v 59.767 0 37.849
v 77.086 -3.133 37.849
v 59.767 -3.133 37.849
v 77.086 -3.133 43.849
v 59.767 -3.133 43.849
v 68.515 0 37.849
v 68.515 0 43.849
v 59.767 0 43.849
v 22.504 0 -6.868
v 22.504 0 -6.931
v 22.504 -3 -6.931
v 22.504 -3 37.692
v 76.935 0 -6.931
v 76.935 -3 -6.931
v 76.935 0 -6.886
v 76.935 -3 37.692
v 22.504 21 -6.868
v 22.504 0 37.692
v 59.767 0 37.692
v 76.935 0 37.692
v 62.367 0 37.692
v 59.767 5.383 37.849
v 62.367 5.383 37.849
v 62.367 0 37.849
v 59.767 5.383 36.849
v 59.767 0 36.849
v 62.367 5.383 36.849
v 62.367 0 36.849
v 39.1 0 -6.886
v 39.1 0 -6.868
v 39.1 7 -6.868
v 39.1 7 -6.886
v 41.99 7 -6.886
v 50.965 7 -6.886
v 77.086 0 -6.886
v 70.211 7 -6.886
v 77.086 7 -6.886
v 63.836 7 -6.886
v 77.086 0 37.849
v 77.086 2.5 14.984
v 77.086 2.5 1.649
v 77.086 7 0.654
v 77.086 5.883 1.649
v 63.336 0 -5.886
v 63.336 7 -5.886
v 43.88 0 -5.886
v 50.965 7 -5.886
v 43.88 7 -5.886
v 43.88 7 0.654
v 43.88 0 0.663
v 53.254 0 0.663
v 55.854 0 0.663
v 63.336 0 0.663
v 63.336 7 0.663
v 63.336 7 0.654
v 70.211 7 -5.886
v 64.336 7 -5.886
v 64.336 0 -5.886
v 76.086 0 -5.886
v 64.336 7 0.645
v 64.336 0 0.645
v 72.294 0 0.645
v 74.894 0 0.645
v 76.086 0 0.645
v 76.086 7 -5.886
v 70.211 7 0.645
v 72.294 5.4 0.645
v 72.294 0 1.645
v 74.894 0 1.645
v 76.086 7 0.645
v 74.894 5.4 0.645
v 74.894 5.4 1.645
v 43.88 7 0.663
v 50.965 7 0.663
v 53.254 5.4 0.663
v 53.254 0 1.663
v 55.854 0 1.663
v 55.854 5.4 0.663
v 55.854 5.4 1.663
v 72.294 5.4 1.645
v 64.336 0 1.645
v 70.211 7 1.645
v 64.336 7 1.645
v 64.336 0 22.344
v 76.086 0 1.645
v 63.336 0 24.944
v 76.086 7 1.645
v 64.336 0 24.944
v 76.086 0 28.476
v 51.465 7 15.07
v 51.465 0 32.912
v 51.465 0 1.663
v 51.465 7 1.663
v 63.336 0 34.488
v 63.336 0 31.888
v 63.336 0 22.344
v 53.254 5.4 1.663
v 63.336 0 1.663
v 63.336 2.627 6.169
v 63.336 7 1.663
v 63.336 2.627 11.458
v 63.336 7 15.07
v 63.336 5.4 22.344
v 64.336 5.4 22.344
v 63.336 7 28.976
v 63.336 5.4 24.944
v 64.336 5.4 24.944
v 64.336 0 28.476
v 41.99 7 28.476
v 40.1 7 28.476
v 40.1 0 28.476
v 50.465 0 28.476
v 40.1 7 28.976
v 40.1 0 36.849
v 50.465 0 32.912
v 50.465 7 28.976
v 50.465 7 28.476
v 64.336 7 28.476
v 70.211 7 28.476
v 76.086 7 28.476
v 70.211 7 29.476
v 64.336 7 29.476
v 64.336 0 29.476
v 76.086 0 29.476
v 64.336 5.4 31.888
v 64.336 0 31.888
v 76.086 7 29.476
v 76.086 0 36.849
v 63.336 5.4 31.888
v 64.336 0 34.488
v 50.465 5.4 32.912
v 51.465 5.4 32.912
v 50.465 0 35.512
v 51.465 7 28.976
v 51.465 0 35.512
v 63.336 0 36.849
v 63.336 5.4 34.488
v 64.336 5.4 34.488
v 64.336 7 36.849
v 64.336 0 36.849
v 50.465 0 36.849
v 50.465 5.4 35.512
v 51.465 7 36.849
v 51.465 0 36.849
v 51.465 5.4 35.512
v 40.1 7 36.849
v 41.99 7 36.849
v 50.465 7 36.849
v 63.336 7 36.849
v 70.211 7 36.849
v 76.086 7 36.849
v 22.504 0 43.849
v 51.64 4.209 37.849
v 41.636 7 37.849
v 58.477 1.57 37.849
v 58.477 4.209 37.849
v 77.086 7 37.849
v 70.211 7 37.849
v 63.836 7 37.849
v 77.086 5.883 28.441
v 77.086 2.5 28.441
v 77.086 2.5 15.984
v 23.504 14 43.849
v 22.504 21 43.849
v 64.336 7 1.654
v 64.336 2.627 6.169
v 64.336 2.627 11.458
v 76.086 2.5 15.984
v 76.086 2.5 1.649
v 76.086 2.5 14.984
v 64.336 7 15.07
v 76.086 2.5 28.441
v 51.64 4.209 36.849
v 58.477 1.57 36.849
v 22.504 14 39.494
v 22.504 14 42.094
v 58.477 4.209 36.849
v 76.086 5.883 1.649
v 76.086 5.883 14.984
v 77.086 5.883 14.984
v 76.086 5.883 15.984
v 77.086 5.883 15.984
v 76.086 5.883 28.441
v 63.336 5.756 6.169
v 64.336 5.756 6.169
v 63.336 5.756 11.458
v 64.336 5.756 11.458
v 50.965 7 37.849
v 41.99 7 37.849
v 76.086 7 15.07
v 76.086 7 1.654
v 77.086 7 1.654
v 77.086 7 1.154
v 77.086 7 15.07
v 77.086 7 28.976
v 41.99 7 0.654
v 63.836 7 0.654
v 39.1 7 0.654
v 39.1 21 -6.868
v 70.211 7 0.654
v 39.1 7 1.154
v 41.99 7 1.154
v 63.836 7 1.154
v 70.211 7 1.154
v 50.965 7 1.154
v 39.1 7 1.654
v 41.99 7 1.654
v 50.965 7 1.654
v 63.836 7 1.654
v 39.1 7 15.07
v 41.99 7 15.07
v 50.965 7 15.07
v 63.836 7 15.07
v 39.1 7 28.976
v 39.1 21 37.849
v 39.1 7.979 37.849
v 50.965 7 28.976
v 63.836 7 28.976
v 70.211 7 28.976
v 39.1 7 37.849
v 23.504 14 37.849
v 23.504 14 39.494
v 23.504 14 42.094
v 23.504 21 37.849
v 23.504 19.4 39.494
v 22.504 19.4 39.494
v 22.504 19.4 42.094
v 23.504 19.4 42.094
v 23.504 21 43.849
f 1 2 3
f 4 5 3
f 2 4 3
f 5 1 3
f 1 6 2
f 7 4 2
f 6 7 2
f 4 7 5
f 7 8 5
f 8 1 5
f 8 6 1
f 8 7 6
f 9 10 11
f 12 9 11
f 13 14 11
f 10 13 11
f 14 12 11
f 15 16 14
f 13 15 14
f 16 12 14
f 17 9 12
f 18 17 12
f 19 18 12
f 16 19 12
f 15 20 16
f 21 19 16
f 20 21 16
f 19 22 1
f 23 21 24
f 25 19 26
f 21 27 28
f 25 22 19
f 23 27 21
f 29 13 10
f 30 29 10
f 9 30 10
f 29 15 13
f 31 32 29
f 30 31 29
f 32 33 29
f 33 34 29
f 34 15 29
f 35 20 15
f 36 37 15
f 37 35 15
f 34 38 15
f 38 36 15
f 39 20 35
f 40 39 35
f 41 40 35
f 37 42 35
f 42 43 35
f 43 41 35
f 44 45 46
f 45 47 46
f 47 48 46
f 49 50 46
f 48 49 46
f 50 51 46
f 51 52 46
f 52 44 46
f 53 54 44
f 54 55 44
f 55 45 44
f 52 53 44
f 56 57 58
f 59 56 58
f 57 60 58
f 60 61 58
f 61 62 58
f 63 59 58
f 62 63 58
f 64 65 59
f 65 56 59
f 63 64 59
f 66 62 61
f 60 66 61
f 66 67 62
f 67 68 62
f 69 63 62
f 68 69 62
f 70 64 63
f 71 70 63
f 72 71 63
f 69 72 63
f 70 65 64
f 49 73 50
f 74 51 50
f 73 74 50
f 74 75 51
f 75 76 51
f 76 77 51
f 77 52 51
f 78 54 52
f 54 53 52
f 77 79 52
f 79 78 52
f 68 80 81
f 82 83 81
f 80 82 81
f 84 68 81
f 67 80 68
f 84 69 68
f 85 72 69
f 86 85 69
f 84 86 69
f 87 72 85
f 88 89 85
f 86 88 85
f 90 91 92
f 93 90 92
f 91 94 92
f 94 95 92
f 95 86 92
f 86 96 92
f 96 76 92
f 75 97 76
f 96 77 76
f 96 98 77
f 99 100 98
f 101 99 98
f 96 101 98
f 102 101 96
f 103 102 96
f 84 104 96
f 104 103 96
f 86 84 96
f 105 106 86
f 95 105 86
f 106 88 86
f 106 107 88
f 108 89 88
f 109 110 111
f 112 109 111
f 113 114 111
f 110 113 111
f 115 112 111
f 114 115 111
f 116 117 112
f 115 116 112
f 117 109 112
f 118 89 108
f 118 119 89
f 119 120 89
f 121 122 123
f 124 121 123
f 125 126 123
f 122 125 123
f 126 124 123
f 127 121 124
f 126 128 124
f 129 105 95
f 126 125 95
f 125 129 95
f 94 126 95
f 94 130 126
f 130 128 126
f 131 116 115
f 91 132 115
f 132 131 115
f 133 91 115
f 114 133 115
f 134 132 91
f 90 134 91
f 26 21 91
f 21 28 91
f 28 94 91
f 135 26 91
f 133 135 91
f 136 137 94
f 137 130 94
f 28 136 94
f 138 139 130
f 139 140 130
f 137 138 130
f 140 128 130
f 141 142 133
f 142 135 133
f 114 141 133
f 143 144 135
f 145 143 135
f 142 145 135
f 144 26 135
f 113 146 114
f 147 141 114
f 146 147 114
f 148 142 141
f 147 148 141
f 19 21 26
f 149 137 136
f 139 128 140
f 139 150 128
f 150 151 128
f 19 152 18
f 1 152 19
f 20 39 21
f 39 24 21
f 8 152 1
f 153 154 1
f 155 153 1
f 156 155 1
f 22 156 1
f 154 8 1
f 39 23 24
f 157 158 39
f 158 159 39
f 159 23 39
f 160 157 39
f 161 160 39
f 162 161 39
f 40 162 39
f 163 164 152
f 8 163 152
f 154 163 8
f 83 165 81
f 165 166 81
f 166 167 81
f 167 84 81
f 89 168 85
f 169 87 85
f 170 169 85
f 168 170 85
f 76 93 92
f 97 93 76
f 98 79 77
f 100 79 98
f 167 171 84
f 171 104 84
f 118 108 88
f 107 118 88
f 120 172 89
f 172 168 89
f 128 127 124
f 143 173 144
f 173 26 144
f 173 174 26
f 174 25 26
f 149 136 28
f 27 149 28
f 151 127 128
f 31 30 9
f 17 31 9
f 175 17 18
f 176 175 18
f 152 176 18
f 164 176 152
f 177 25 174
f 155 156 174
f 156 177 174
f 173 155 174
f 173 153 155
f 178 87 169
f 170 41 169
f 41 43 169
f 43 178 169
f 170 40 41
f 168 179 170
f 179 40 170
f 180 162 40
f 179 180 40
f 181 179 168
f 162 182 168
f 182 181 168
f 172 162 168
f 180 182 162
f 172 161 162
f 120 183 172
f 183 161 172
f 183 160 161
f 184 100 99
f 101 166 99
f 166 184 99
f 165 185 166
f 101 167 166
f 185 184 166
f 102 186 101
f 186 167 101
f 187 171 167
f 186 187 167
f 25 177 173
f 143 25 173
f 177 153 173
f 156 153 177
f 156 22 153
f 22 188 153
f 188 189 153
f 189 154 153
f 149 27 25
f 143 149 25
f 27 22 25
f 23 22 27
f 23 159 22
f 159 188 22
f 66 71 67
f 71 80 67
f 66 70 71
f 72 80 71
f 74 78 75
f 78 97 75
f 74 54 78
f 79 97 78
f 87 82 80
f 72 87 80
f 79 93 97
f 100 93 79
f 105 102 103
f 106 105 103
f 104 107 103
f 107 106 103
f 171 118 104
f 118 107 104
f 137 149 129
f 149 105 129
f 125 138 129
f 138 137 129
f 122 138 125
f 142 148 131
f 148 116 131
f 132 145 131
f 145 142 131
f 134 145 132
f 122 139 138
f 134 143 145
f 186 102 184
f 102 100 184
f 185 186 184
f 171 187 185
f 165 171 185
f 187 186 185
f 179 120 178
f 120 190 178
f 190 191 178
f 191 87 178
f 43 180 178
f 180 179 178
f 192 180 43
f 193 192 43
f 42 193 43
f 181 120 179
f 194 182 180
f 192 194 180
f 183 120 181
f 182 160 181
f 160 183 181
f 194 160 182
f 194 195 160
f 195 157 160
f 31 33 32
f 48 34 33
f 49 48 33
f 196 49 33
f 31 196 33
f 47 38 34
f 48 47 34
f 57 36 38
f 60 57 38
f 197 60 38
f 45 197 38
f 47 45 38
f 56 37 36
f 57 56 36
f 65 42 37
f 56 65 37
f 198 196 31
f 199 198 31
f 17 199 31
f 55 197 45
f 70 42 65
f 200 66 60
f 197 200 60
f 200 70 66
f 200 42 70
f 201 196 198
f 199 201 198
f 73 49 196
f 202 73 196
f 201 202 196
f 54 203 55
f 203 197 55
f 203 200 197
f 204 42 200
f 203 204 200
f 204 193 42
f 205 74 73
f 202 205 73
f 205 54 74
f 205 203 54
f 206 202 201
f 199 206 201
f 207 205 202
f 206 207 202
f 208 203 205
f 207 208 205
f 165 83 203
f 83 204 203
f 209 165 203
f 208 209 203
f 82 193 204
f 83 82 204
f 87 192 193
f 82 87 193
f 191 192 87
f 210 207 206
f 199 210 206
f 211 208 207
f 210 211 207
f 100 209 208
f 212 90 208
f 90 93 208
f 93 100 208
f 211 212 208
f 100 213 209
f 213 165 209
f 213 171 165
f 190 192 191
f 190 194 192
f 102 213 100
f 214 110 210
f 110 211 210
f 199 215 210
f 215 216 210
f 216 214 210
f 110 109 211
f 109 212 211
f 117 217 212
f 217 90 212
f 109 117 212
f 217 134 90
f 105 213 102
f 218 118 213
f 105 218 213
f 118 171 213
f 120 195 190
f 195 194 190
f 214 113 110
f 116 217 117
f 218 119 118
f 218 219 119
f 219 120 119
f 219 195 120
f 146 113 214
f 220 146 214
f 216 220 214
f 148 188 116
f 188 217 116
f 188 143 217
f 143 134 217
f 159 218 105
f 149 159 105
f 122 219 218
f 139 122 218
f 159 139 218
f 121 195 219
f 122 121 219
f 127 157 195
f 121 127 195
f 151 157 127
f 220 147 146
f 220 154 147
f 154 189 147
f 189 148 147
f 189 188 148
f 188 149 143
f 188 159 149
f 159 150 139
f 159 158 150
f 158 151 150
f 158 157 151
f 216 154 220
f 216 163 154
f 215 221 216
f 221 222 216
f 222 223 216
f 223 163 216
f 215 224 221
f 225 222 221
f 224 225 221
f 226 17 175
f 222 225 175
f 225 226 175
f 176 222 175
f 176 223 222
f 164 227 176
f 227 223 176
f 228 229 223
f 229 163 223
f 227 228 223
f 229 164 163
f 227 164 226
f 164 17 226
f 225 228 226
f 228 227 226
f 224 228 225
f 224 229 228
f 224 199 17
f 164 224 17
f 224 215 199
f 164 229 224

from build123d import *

# Parameters (mm, degrees)
ESBO_O2_W                 = 37.986253967
ESBO_O2_H                 = 44.734832406
ESBO_O2_W_2               = 11.750117276
ESBO_O2_H_2               = 7.37288194
ESBO_O2_W_3               = 11.871724424
ESBO_O2_H_3               = 35.18648103
ESBO_O2_H_4               = 26.831400584
ESBO_O2_H_5               = 6.530549882
ESBO_O2_W_4               = 19.456037254
ESBO_O2_H_6               = 6.548351376
ESBO_O2_W_5               = 10.364412267
ESBO_O2_H_7               = 8.37288194
RESSALTO_EXTRUS_O3_DEPTH  = 7
ESBO_O3_W                 = 2.6
ESBO_O3_H                 = 5.4
CORTE_EXTRUS_O1_DEPTH     = 7
ESBO_O4_W                 = 2.6
ESBO_O4_H                 = 5.4
CORTE_EXTRUS_O2_DEPTH     = 7
ESBO_O5_W                 = 2.6
ESBO_O5_H                 = 5.4
CORTE_EXTRUS_O3_DEPTH     = 7
ESBO_O6_W                 = 2.6
ESBO_O6_H                 = 5.4
CORTE_EXTRUS_O4_DEPTH     = 7
ESBO_O7_W                 = 12.456756284
ESBO_O7_H                 = 3.38294224
ESBO_O7_W_2               = 13.334930508
CORTE_EXTRUS_O5_DEPTH     = 7
ESBO_O8_W                 = 5.289229733
ESBO_O8_H                 = 3.129282188
CORTE_EXTRUS_O6_DEPTH     = 7
ESBO_O9_W                 = 16.596543628
ESBO_O9_H                 = 44.717687617
RESSALTO_EXTRUS_O4_DEPTH  = 21
ESBO_O10_W                = 1
ESBO_O10_H                = 7
RESSALTO_EXTRUS_O5_DEPTH  = 6
ESBO_O12_W                = 2.6
ESBO_O12_H                = 5.4
CORTE_EXTRUS_O7_DEPTH     = 6
RESSALTO_EXTRUS_O10_DEPTH = 6
ESBO_O14_W                = 54.431813347
ESBO_O14_H                = 44.622738474
RESSALTO_EXTRUS_O21_DEPTH = 3
CORTE_EXTRUS_O8_DEPTH     = 10


with BuildPart() as part:
    # Esboço2 → Ressalto-extrusão3 (new body)
    with BuildSketch(Plane(origin=(0, 0, 0), x_dir=(1, 0, 0), z_dir=(0, 1, 0))):
        with Locations((58.093256618, -15.481778526)):
            Rectangle(ESBO_O2_W, ESBO_O2_H)
        with Locations((70.211324964, -33.162753759)):
            Rectangle(ESBO_O2_W_2, ESBO_O2_H_2, mode=Mode.SUBTRACT)
        with Locations((57.400404114, -19.255954214)):
            Rectangle(ESBO_O2_W_3, ESBO_O2_H_3, mode=Mode.SUBTRACT)
        with Locations((70.211324964, -15.060612497)):
            Rectangle(ESBO_O2_W_2, ESBO_O2_H_4, mode=Mode.SUBTRACT)
        with Locations((70.211324964, 2.620362736)):
            Rectangle(ESBO_O2_W_2, ESBO_O2_H_5, mode=Mode.SUBTRACT)
        with Locations((53.608247699, 2.611461989)):
            Rectangle(ESBO_O2_W_4, ESBO_O2_H_6, mode=Mode.SUBTRACT)
        with Locations((45.282335769, -32.662753759)):
            Rectangle(ESBO_O2_W_5, ESBO_O2_H_7, mode=Mode.SUBTRACT)
    extrude(amount=RESSALTO_EXTRUS_O3_DEPTH)

    # Esboço3 → Corte-extrusão1 (cut)
    with BuildSketch(Plane.XY.offset(37.849194729)):
        with Locations((61.067460433, 2.683034247)):
            Rectangle(ESBO_O3_W, ESBO_O3_H)
    extrude(amount=-CORTE_EXTRUS_O1_DEPTH, mode=Mode.SUBTRACT)

    # Esboço4 → Corte-extrusão2 (cut)
    with BuildSketch(Plane(origin=(51.464541902, 0, 0), x_dir=(0, 0, -1), z_dir=(1, 0, 0))):
        with Locations((-34.211906201, 2.7)):
            Rectangle(ESBO_O4_W, ESBO_O4_H)
    extrude(amount=-CORTE_EXTRUS_O2_DEPTH, mode=Mode.SUBTRACT)

    # Esboço5 → Corte-extrusão3 (cut)
    with BuildSketch(Plane(origin=(64.336266326, 0, 0), x_dir=(0, 0, -1), z_dir=(1, 0, 0))):
        with Locations((-23.64357665, 2.7)):
            Rectangle(ESBO_O5_W, ESBO_O5_H)
        with Locations((-33.18821391, 2.7)):
            Rectangle(ESBO_O5_W, ESBO_O5_H)
    extrude(amount=-CORTE_EXTRUS_O3_DEPTH, mode=Mode.SUBTRACT)

    # Esboço6 → Corte-extrusão4 (cut)
    with BuildSketch(Plane.XY.offset(1.662713699)):
        with Locations((54.554214473, 2.7)):
            Rectangle(ESBO_O6_W, ESBO_O6_H)
        with Locations((73.594212294, 2.7)):
            Rectangle(ESBO_O6_W, ESBO_O6_H)
    extrude(amount=-CORTE_EXTRUS_O4_DEPTH, mode=Mode.SUBTRACT)

    # Esboço7 → Corte-extrusão5 (cut)
    with BuildSketch(Plane(origin=(77.086383602, 0, 0), x_dir=(0, 0, -1), z_dir=(1, 0, 0))):
        with Locations((-22.212770341, 4.19147112)):
            Rectangle(ESBO_O7_W, ESBO_O7_H)
        with Locations((-8.316926945, 4.19147112)):
            Rectangle(ESBO_O7_W_2, ESBO_O7_H)
    extrude(amount=-CORTE_EXTRUS_O5_DEPTH, mode=Mode.SUBTRACT)

    # Esboço8 → Corte-extrusão6 (cut)
    with BuildSketch(Plane(origin=(64.336266326, 0, 0), x_dir=(0, 0, -1), z_dir=(1, 0, 0))):
        with Locations((-8.813569548, 4.191268224)):
            Rectangle(ESBO_O8_W, ESBO_O8_H)
    extrude(amount=-CORTE_EXTRUS_O6_DEPTH, mode=Mode.SUBTRACT)

    # Esboço9 → Ressalto-extrusão4 (add)
    with BuildSketch(Plane(origin=(0, 0, 0), x_dir=(1, 0, 0), z_dir=(0, 1, 0))):
        with Locations((30.801857821, -15.490350921)):
            Rectangle(ESBO_O9_W, ESBO_O9_H)
    extrude(amount=RESSALTO_EXTRUS_O4_DEPTH)

    # Esboço10 → Ressalto-extrusão5 (add)
    with BuildSketch(Plane.XY.offset(37.849194729)):
        with Locations((23.003586007, 17.5)):
            Rectangle(ESBO_O10_W, ESBO_O10_H)
    extrude(amount=RESSALTO_EXTRUS_O5_DEPTH)

    # Esboço12 → Corte-extrusão7 (cut)
    with BuildSketch(Plane(origin=(23.503586007, 0, 0), x_dir=(0, 0, -1), z_dir=(1, 0, 0))):
        with Locations((-40.793821366, 16.7)):
            Rectangle(ESBO_O12_W, ESBO_O12_H)
    extrude(amount=-CORTE_EXTRUS_O7_DEPTH, mode=Mode.SUBTRACT)

    # Esboço11 → Ressalto-extrusão10 (add)
    with BuildSketch(Plane.XY.offset(37.849194729)):
        Polygon((39.100129635, 7.978811855), (23.503586007, 14), (22.503586007, 14), (22.503586007, 0), (59.767460433, 0), (41.63552322, 7), (39.100129635, 7), align=None)
        Polygon((62.367460433, 0), (59.767460433, 0), (59.767460433, -3.133265808), (77.086383602, -3.133265808), (68.515290094, 0), align=None)
        Polygon((41.63552322, 7), (39.100129635, 7.978811855), (39.100129635, 7), align=None)
    extrude(amount=RESSALTO_EXTRUS_O10_DEPTH)

    # Esboço14 → Ressalto-extrusão21 (add)
    with BuildSketch(Plane(origin=(0, 0, 0), x_dir=(1, 0, 0), z_dir=(0, 1, 0))):
        with Locations((49.719492681, -15.380529079)):
            Rectangle(ESBO_O14_W, ESBO_O14_H)
    extrude(amount=-RESSALTO_EXTRUS_O21_DEPTH)

    # Esboço15 → Corte-extrusão8 (cut)
    with BuildSketch(Plane.XY.offset(37.849194729)):
        Polygon((51.640321605, 4.209489794), (58.47658994, 1.570285952), (58.47658994, 4.209489794), align=None)
    extrude(amount=-CORTE_EXTRUS_O8_DEPTH, mode=Mode.SUBTRACT)


solid = part.part
